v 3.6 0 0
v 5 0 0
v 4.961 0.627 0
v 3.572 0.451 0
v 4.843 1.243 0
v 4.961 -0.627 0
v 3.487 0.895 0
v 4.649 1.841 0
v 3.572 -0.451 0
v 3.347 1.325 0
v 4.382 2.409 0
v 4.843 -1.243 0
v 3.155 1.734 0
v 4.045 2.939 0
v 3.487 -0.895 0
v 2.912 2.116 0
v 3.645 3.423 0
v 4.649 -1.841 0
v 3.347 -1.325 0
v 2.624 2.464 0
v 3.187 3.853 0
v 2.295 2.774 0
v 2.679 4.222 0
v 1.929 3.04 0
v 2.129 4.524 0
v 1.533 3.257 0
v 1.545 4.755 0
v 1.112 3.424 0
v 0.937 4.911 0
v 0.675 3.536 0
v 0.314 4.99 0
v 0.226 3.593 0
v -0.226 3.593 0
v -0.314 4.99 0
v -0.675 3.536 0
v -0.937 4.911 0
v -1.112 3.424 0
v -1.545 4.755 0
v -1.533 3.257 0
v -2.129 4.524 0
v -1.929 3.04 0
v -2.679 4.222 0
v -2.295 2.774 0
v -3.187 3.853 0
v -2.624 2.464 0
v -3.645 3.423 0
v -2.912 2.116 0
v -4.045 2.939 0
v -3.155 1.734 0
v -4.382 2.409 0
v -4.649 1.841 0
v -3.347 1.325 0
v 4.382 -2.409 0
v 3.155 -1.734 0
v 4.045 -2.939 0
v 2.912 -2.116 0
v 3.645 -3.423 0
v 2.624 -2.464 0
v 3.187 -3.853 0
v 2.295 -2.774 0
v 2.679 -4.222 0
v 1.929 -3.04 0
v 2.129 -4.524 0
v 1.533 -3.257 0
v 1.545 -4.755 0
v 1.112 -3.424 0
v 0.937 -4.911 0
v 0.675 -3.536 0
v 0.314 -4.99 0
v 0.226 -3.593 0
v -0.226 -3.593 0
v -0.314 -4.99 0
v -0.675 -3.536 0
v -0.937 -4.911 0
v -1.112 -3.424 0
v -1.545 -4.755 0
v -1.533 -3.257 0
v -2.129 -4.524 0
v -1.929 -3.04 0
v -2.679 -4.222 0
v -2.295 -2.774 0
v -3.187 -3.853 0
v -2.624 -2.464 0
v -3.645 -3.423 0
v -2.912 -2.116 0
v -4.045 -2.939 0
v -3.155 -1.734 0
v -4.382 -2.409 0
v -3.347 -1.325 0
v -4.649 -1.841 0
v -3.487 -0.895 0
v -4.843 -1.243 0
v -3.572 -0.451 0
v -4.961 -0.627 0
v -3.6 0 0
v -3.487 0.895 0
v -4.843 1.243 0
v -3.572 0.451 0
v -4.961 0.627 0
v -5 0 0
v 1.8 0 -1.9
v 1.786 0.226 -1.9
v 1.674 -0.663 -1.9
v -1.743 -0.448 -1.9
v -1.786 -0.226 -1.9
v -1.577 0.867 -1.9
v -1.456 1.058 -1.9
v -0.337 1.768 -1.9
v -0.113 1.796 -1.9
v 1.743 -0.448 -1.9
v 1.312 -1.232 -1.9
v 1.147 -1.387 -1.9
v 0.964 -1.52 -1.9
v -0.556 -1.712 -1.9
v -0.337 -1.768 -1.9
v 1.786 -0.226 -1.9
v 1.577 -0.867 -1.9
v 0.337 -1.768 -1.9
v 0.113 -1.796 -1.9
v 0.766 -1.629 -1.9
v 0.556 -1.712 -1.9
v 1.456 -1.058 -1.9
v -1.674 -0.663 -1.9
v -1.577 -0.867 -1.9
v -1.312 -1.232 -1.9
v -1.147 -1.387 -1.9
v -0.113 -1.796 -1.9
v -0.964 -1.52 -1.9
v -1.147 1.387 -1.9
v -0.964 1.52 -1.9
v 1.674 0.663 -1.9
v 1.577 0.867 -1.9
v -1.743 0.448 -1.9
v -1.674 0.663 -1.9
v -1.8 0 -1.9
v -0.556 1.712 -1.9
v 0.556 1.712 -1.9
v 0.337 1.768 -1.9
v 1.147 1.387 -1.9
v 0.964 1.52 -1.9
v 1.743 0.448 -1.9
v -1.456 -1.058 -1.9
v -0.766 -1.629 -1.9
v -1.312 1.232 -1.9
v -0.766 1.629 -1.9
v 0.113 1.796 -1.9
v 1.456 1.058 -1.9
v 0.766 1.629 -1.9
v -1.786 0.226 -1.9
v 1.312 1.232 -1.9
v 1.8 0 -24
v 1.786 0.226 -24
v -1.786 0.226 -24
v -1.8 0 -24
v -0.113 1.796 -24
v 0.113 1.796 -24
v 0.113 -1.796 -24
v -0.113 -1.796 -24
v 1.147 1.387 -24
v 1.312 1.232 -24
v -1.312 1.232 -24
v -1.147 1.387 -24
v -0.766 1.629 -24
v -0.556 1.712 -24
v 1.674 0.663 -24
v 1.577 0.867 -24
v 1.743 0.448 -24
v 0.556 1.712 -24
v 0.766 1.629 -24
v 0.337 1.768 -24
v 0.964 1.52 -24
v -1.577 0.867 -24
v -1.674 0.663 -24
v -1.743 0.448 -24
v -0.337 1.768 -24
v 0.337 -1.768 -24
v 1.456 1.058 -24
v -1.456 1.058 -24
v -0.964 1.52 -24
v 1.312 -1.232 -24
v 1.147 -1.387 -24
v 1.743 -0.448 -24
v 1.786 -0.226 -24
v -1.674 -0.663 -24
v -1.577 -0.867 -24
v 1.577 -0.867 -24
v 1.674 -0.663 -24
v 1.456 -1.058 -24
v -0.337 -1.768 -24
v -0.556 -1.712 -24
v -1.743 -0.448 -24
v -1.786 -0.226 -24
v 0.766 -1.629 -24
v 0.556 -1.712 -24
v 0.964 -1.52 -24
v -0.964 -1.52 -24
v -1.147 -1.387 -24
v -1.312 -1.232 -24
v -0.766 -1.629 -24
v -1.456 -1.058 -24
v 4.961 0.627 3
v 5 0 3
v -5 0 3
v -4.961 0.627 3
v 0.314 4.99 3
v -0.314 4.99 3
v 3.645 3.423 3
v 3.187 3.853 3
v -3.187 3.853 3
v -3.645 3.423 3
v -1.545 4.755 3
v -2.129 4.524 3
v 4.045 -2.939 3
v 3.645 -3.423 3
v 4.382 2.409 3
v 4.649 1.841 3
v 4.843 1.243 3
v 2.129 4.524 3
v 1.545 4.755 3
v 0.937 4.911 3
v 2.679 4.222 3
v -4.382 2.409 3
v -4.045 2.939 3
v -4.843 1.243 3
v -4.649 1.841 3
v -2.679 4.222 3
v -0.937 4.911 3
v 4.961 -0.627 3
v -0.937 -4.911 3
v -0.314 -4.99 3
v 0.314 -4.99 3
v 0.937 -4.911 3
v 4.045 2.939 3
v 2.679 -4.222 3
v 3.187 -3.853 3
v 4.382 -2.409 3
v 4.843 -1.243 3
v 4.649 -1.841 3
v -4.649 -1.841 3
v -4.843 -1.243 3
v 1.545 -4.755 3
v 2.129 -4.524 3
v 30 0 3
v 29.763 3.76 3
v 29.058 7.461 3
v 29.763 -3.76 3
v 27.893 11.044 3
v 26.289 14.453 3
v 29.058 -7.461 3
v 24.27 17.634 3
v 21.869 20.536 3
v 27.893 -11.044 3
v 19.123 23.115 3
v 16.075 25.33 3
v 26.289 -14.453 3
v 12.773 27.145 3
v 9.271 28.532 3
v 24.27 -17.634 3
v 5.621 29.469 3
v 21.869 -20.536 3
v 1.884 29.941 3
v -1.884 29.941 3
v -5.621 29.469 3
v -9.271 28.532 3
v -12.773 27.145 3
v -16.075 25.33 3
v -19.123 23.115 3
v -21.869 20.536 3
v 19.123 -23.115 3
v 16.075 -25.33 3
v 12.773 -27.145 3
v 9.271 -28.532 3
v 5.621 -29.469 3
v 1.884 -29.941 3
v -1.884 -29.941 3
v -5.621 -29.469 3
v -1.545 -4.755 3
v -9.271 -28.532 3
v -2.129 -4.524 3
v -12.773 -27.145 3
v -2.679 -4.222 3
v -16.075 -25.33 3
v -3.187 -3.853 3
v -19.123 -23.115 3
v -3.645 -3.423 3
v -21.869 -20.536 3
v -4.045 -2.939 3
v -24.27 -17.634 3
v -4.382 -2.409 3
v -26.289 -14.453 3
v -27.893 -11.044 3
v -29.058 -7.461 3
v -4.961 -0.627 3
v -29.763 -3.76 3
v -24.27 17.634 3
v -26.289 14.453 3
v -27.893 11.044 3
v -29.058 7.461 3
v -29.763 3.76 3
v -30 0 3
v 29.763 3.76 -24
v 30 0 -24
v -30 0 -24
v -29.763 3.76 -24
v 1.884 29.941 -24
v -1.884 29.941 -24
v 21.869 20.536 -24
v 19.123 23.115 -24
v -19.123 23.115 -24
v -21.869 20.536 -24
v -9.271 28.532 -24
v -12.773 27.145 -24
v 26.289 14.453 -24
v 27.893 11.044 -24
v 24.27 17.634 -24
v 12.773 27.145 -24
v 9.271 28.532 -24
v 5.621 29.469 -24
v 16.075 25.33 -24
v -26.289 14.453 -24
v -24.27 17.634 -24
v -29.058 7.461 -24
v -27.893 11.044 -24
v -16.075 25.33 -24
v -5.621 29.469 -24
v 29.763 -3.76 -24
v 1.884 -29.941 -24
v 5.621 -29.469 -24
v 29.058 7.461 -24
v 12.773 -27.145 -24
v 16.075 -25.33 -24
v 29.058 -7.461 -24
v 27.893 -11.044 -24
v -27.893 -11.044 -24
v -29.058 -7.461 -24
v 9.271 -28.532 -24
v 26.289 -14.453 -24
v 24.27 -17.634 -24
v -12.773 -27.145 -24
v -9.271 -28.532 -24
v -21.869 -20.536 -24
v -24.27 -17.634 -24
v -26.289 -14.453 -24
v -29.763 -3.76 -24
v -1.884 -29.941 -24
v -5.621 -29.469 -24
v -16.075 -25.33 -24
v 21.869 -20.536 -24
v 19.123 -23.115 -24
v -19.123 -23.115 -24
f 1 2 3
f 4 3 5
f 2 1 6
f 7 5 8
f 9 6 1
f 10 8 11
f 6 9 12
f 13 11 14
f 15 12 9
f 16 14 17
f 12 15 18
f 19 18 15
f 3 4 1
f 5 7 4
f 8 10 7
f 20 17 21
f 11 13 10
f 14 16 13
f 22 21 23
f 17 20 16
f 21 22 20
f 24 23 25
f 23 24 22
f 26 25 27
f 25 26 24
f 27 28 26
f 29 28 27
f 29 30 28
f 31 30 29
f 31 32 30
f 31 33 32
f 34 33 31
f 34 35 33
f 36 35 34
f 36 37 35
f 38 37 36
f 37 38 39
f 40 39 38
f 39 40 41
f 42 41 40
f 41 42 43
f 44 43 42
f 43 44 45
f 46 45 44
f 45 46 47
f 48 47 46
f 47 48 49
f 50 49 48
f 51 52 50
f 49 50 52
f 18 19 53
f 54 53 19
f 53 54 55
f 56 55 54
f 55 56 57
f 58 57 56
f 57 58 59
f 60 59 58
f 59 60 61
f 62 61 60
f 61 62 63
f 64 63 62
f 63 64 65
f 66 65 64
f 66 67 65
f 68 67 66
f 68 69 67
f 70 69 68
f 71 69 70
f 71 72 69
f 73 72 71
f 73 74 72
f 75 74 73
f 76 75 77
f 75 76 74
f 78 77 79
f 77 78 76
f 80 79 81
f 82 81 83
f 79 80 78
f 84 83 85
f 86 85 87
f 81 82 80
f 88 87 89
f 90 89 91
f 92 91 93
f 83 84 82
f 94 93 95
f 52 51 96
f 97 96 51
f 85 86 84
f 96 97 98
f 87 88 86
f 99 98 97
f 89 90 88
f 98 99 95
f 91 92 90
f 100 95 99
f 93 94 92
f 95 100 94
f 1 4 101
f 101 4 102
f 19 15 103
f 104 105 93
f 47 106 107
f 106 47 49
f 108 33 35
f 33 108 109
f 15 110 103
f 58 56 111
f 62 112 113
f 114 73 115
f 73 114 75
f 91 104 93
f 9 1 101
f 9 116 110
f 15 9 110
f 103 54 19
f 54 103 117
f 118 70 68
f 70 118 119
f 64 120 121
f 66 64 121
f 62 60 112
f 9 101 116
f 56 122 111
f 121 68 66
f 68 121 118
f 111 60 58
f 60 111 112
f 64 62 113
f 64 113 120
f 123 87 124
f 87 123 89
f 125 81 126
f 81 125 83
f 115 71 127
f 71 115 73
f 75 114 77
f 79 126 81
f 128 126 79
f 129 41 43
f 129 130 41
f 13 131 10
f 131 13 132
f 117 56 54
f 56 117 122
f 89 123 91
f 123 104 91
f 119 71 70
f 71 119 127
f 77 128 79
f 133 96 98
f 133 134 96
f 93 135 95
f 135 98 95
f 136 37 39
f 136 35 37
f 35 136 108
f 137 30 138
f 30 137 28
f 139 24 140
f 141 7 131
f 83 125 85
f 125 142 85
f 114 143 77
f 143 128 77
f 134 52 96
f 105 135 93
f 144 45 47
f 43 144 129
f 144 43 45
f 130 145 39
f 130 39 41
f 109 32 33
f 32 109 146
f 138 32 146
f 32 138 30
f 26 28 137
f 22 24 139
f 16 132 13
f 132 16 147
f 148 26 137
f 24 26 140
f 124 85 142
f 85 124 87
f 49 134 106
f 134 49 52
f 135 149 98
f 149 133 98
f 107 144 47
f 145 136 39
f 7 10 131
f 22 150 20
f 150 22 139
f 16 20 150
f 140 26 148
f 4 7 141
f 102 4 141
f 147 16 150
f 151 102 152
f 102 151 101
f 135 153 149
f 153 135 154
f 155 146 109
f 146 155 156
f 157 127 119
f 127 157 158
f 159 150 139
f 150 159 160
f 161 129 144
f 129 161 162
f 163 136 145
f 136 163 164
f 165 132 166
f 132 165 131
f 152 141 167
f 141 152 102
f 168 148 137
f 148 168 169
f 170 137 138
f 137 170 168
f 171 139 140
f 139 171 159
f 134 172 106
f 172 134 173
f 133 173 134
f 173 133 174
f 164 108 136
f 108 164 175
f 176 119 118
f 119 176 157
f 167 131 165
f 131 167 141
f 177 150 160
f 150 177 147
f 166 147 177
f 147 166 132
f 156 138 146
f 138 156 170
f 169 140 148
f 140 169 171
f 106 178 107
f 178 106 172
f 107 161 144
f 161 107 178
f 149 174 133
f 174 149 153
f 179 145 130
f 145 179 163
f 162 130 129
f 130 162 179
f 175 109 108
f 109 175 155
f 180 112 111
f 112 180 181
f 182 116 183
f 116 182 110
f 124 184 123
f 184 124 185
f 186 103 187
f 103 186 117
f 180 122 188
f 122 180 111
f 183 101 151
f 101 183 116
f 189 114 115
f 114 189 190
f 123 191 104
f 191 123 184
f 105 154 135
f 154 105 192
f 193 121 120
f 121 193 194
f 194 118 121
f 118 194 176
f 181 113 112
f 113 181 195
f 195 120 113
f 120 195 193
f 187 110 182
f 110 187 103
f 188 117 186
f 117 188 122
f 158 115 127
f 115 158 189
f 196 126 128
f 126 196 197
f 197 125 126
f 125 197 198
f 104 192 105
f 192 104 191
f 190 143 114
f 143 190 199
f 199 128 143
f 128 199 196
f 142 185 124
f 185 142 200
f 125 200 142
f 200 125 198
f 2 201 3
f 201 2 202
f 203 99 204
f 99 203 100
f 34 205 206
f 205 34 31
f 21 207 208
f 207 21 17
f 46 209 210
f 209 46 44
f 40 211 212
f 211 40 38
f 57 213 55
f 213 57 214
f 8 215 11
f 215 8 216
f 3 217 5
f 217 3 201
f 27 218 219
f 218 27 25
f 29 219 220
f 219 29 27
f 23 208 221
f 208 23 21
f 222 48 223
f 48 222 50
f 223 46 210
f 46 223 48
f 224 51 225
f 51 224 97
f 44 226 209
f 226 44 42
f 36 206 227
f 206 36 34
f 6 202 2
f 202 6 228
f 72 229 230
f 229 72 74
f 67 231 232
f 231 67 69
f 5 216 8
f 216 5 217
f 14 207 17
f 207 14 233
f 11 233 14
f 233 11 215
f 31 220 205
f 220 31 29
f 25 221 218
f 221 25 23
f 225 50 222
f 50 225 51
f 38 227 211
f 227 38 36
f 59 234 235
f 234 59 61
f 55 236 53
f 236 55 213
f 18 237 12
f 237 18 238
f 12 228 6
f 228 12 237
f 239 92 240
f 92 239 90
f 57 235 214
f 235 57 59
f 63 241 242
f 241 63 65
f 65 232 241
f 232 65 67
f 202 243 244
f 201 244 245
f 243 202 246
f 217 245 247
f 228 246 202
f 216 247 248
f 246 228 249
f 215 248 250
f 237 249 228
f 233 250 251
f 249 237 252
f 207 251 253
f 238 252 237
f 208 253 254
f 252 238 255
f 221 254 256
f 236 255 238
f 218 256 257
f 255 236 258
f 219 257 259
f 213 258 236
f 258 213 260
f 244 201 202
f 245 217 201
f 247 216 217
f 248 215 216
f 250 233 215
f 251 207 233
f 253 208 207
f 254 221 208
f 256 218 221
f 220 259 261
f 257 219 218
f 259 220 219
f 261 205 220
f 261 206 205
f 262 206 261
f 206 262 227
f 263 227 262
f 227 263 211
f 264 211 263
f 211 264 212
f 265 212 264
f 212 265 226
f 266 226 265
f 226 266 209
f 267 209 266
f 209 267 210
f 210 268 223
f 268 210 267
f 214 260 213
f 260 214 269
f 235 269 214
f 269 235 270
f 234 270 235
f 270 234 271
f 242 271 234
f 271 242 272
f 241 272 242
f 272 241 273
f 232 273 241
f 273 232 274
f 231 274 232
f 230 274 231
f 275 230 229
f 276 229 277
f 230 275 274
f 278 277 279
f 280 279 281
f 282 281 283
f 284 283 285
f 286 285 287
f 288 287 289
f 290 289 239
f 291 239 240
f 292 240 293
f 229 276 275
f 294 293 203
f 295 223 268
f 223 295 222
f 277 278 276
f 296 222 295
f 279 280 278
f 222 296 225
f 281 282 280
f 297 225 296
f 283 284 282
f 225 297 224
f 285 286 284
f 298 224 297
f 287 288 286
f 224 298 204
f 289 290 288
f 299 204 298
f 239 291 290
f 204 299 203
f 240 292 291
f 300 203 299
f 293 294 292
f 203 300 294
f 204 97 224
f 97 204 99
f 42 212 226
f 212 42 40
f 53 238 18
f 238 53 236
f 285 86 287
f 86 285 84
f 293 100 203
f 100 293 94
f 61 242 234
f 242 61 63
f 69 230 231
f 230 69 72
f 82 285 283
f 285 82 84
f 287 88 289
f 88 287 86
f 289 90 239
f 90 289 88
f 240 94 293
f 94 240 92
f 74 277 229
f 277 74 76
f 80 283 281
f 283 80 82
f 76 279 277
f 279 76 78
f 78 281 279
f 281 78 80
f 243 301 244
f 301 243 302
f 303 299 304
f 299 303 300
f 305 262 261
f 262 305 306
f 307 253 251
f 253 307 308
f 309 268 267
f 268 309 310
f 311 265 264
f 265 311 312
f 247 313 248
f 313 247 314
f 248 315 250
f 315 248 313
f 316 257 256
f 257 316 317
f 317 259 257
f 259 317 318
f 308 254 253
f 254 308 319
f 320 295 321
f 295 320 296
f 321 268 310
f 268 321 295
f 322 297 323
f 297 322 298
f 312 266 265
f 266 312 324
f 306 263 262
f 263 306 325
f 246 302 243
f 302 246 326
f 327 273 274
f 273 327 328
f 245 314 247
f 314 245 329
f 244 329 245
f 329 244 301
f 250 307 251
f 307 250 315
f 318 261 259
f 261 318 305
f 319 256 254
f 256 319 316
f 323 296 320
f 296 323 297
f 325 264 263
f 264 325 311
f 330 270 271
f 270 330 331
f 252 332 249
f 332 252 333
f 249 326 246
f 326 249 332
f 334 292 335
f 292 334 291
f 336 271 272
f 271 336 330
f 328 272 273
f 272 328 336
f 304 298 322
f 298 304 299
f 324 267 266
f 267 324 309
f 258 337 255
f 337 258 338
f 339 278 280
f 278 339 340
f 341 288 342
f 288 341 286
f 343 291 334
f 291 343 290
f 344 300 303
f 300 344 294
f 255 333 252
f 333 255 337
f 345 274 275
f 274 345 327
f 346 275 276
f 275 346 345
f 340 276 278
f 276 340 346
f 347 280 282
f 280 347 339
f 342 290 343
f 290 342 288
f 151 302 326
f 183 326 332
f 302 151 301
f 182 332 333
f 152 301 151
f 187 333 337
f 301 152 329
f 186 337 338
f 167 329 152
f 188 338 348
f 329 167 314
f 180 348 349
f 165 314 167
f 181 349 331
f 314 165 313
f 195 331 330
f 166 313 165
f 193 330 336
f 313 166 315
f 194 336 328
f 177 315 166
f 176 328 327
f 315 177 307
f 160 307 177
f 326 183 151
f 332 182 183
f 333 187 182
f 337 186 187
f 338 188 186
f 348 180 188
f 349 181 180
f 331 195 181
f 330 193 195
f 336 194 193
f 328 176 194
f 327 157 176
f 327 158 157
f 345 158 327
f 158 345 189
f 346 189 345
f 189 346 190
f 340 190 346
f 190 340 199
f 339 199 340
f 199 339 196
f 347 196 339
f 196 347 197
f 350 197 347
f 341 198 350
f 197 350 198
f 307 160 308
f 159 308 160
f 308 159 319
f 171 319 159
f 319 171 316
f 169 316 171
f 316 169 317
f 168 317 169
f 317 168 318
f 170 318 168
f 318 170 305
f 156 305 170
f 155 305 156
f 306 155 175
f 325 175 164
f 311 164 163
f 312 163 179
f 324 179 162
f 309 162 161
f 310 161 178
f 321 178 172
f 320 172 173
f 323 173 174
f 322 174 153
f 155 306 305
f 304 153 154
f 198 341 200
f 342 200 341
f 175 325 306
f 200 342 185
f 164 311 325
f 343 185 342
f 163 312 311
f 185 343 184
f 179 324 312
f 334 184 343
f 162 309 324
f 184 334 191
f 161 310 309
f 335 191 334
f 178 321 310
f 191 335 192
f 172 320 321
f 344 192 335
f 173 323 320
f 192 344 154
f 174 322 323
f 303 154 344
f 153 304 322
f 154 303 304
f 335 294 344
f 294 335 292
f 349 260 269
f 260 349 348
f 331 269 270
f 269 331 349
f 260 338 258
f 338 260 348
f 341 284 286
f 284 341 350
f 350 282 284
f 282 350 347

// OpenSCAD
$fn = 50;

difference() {
	union() {
		translate(v = [0, 0, -24.0]) {
			cylinder(h = 27, r = 30.0);
		}
	}
	union() {
		translate(v = [0, 0, 0]) {
			rotate(a = [0, 0, 0]) {
				difference() {
					union() {
						translate(v = [0, 0, -27.0]) {
							cylinder(h = 27, r = 1.5);
						}
						translate(v = [0, 0, -1.9]) {
							cylinder(h = 1.9, r1 = 1.8, r2 = 3.6);
						}
						translate(v = [0, 0, -27.0]) {
							cylinder(h = 27, r = 1.8);
						}
						translate(v = [0, 0, -27.0]) {
							cylinder(h = 27, r = 1.5);
						}
					}
					union();
				}
			}
		}
		#cylinder(h = 3, r = 5.0);
	}
}
